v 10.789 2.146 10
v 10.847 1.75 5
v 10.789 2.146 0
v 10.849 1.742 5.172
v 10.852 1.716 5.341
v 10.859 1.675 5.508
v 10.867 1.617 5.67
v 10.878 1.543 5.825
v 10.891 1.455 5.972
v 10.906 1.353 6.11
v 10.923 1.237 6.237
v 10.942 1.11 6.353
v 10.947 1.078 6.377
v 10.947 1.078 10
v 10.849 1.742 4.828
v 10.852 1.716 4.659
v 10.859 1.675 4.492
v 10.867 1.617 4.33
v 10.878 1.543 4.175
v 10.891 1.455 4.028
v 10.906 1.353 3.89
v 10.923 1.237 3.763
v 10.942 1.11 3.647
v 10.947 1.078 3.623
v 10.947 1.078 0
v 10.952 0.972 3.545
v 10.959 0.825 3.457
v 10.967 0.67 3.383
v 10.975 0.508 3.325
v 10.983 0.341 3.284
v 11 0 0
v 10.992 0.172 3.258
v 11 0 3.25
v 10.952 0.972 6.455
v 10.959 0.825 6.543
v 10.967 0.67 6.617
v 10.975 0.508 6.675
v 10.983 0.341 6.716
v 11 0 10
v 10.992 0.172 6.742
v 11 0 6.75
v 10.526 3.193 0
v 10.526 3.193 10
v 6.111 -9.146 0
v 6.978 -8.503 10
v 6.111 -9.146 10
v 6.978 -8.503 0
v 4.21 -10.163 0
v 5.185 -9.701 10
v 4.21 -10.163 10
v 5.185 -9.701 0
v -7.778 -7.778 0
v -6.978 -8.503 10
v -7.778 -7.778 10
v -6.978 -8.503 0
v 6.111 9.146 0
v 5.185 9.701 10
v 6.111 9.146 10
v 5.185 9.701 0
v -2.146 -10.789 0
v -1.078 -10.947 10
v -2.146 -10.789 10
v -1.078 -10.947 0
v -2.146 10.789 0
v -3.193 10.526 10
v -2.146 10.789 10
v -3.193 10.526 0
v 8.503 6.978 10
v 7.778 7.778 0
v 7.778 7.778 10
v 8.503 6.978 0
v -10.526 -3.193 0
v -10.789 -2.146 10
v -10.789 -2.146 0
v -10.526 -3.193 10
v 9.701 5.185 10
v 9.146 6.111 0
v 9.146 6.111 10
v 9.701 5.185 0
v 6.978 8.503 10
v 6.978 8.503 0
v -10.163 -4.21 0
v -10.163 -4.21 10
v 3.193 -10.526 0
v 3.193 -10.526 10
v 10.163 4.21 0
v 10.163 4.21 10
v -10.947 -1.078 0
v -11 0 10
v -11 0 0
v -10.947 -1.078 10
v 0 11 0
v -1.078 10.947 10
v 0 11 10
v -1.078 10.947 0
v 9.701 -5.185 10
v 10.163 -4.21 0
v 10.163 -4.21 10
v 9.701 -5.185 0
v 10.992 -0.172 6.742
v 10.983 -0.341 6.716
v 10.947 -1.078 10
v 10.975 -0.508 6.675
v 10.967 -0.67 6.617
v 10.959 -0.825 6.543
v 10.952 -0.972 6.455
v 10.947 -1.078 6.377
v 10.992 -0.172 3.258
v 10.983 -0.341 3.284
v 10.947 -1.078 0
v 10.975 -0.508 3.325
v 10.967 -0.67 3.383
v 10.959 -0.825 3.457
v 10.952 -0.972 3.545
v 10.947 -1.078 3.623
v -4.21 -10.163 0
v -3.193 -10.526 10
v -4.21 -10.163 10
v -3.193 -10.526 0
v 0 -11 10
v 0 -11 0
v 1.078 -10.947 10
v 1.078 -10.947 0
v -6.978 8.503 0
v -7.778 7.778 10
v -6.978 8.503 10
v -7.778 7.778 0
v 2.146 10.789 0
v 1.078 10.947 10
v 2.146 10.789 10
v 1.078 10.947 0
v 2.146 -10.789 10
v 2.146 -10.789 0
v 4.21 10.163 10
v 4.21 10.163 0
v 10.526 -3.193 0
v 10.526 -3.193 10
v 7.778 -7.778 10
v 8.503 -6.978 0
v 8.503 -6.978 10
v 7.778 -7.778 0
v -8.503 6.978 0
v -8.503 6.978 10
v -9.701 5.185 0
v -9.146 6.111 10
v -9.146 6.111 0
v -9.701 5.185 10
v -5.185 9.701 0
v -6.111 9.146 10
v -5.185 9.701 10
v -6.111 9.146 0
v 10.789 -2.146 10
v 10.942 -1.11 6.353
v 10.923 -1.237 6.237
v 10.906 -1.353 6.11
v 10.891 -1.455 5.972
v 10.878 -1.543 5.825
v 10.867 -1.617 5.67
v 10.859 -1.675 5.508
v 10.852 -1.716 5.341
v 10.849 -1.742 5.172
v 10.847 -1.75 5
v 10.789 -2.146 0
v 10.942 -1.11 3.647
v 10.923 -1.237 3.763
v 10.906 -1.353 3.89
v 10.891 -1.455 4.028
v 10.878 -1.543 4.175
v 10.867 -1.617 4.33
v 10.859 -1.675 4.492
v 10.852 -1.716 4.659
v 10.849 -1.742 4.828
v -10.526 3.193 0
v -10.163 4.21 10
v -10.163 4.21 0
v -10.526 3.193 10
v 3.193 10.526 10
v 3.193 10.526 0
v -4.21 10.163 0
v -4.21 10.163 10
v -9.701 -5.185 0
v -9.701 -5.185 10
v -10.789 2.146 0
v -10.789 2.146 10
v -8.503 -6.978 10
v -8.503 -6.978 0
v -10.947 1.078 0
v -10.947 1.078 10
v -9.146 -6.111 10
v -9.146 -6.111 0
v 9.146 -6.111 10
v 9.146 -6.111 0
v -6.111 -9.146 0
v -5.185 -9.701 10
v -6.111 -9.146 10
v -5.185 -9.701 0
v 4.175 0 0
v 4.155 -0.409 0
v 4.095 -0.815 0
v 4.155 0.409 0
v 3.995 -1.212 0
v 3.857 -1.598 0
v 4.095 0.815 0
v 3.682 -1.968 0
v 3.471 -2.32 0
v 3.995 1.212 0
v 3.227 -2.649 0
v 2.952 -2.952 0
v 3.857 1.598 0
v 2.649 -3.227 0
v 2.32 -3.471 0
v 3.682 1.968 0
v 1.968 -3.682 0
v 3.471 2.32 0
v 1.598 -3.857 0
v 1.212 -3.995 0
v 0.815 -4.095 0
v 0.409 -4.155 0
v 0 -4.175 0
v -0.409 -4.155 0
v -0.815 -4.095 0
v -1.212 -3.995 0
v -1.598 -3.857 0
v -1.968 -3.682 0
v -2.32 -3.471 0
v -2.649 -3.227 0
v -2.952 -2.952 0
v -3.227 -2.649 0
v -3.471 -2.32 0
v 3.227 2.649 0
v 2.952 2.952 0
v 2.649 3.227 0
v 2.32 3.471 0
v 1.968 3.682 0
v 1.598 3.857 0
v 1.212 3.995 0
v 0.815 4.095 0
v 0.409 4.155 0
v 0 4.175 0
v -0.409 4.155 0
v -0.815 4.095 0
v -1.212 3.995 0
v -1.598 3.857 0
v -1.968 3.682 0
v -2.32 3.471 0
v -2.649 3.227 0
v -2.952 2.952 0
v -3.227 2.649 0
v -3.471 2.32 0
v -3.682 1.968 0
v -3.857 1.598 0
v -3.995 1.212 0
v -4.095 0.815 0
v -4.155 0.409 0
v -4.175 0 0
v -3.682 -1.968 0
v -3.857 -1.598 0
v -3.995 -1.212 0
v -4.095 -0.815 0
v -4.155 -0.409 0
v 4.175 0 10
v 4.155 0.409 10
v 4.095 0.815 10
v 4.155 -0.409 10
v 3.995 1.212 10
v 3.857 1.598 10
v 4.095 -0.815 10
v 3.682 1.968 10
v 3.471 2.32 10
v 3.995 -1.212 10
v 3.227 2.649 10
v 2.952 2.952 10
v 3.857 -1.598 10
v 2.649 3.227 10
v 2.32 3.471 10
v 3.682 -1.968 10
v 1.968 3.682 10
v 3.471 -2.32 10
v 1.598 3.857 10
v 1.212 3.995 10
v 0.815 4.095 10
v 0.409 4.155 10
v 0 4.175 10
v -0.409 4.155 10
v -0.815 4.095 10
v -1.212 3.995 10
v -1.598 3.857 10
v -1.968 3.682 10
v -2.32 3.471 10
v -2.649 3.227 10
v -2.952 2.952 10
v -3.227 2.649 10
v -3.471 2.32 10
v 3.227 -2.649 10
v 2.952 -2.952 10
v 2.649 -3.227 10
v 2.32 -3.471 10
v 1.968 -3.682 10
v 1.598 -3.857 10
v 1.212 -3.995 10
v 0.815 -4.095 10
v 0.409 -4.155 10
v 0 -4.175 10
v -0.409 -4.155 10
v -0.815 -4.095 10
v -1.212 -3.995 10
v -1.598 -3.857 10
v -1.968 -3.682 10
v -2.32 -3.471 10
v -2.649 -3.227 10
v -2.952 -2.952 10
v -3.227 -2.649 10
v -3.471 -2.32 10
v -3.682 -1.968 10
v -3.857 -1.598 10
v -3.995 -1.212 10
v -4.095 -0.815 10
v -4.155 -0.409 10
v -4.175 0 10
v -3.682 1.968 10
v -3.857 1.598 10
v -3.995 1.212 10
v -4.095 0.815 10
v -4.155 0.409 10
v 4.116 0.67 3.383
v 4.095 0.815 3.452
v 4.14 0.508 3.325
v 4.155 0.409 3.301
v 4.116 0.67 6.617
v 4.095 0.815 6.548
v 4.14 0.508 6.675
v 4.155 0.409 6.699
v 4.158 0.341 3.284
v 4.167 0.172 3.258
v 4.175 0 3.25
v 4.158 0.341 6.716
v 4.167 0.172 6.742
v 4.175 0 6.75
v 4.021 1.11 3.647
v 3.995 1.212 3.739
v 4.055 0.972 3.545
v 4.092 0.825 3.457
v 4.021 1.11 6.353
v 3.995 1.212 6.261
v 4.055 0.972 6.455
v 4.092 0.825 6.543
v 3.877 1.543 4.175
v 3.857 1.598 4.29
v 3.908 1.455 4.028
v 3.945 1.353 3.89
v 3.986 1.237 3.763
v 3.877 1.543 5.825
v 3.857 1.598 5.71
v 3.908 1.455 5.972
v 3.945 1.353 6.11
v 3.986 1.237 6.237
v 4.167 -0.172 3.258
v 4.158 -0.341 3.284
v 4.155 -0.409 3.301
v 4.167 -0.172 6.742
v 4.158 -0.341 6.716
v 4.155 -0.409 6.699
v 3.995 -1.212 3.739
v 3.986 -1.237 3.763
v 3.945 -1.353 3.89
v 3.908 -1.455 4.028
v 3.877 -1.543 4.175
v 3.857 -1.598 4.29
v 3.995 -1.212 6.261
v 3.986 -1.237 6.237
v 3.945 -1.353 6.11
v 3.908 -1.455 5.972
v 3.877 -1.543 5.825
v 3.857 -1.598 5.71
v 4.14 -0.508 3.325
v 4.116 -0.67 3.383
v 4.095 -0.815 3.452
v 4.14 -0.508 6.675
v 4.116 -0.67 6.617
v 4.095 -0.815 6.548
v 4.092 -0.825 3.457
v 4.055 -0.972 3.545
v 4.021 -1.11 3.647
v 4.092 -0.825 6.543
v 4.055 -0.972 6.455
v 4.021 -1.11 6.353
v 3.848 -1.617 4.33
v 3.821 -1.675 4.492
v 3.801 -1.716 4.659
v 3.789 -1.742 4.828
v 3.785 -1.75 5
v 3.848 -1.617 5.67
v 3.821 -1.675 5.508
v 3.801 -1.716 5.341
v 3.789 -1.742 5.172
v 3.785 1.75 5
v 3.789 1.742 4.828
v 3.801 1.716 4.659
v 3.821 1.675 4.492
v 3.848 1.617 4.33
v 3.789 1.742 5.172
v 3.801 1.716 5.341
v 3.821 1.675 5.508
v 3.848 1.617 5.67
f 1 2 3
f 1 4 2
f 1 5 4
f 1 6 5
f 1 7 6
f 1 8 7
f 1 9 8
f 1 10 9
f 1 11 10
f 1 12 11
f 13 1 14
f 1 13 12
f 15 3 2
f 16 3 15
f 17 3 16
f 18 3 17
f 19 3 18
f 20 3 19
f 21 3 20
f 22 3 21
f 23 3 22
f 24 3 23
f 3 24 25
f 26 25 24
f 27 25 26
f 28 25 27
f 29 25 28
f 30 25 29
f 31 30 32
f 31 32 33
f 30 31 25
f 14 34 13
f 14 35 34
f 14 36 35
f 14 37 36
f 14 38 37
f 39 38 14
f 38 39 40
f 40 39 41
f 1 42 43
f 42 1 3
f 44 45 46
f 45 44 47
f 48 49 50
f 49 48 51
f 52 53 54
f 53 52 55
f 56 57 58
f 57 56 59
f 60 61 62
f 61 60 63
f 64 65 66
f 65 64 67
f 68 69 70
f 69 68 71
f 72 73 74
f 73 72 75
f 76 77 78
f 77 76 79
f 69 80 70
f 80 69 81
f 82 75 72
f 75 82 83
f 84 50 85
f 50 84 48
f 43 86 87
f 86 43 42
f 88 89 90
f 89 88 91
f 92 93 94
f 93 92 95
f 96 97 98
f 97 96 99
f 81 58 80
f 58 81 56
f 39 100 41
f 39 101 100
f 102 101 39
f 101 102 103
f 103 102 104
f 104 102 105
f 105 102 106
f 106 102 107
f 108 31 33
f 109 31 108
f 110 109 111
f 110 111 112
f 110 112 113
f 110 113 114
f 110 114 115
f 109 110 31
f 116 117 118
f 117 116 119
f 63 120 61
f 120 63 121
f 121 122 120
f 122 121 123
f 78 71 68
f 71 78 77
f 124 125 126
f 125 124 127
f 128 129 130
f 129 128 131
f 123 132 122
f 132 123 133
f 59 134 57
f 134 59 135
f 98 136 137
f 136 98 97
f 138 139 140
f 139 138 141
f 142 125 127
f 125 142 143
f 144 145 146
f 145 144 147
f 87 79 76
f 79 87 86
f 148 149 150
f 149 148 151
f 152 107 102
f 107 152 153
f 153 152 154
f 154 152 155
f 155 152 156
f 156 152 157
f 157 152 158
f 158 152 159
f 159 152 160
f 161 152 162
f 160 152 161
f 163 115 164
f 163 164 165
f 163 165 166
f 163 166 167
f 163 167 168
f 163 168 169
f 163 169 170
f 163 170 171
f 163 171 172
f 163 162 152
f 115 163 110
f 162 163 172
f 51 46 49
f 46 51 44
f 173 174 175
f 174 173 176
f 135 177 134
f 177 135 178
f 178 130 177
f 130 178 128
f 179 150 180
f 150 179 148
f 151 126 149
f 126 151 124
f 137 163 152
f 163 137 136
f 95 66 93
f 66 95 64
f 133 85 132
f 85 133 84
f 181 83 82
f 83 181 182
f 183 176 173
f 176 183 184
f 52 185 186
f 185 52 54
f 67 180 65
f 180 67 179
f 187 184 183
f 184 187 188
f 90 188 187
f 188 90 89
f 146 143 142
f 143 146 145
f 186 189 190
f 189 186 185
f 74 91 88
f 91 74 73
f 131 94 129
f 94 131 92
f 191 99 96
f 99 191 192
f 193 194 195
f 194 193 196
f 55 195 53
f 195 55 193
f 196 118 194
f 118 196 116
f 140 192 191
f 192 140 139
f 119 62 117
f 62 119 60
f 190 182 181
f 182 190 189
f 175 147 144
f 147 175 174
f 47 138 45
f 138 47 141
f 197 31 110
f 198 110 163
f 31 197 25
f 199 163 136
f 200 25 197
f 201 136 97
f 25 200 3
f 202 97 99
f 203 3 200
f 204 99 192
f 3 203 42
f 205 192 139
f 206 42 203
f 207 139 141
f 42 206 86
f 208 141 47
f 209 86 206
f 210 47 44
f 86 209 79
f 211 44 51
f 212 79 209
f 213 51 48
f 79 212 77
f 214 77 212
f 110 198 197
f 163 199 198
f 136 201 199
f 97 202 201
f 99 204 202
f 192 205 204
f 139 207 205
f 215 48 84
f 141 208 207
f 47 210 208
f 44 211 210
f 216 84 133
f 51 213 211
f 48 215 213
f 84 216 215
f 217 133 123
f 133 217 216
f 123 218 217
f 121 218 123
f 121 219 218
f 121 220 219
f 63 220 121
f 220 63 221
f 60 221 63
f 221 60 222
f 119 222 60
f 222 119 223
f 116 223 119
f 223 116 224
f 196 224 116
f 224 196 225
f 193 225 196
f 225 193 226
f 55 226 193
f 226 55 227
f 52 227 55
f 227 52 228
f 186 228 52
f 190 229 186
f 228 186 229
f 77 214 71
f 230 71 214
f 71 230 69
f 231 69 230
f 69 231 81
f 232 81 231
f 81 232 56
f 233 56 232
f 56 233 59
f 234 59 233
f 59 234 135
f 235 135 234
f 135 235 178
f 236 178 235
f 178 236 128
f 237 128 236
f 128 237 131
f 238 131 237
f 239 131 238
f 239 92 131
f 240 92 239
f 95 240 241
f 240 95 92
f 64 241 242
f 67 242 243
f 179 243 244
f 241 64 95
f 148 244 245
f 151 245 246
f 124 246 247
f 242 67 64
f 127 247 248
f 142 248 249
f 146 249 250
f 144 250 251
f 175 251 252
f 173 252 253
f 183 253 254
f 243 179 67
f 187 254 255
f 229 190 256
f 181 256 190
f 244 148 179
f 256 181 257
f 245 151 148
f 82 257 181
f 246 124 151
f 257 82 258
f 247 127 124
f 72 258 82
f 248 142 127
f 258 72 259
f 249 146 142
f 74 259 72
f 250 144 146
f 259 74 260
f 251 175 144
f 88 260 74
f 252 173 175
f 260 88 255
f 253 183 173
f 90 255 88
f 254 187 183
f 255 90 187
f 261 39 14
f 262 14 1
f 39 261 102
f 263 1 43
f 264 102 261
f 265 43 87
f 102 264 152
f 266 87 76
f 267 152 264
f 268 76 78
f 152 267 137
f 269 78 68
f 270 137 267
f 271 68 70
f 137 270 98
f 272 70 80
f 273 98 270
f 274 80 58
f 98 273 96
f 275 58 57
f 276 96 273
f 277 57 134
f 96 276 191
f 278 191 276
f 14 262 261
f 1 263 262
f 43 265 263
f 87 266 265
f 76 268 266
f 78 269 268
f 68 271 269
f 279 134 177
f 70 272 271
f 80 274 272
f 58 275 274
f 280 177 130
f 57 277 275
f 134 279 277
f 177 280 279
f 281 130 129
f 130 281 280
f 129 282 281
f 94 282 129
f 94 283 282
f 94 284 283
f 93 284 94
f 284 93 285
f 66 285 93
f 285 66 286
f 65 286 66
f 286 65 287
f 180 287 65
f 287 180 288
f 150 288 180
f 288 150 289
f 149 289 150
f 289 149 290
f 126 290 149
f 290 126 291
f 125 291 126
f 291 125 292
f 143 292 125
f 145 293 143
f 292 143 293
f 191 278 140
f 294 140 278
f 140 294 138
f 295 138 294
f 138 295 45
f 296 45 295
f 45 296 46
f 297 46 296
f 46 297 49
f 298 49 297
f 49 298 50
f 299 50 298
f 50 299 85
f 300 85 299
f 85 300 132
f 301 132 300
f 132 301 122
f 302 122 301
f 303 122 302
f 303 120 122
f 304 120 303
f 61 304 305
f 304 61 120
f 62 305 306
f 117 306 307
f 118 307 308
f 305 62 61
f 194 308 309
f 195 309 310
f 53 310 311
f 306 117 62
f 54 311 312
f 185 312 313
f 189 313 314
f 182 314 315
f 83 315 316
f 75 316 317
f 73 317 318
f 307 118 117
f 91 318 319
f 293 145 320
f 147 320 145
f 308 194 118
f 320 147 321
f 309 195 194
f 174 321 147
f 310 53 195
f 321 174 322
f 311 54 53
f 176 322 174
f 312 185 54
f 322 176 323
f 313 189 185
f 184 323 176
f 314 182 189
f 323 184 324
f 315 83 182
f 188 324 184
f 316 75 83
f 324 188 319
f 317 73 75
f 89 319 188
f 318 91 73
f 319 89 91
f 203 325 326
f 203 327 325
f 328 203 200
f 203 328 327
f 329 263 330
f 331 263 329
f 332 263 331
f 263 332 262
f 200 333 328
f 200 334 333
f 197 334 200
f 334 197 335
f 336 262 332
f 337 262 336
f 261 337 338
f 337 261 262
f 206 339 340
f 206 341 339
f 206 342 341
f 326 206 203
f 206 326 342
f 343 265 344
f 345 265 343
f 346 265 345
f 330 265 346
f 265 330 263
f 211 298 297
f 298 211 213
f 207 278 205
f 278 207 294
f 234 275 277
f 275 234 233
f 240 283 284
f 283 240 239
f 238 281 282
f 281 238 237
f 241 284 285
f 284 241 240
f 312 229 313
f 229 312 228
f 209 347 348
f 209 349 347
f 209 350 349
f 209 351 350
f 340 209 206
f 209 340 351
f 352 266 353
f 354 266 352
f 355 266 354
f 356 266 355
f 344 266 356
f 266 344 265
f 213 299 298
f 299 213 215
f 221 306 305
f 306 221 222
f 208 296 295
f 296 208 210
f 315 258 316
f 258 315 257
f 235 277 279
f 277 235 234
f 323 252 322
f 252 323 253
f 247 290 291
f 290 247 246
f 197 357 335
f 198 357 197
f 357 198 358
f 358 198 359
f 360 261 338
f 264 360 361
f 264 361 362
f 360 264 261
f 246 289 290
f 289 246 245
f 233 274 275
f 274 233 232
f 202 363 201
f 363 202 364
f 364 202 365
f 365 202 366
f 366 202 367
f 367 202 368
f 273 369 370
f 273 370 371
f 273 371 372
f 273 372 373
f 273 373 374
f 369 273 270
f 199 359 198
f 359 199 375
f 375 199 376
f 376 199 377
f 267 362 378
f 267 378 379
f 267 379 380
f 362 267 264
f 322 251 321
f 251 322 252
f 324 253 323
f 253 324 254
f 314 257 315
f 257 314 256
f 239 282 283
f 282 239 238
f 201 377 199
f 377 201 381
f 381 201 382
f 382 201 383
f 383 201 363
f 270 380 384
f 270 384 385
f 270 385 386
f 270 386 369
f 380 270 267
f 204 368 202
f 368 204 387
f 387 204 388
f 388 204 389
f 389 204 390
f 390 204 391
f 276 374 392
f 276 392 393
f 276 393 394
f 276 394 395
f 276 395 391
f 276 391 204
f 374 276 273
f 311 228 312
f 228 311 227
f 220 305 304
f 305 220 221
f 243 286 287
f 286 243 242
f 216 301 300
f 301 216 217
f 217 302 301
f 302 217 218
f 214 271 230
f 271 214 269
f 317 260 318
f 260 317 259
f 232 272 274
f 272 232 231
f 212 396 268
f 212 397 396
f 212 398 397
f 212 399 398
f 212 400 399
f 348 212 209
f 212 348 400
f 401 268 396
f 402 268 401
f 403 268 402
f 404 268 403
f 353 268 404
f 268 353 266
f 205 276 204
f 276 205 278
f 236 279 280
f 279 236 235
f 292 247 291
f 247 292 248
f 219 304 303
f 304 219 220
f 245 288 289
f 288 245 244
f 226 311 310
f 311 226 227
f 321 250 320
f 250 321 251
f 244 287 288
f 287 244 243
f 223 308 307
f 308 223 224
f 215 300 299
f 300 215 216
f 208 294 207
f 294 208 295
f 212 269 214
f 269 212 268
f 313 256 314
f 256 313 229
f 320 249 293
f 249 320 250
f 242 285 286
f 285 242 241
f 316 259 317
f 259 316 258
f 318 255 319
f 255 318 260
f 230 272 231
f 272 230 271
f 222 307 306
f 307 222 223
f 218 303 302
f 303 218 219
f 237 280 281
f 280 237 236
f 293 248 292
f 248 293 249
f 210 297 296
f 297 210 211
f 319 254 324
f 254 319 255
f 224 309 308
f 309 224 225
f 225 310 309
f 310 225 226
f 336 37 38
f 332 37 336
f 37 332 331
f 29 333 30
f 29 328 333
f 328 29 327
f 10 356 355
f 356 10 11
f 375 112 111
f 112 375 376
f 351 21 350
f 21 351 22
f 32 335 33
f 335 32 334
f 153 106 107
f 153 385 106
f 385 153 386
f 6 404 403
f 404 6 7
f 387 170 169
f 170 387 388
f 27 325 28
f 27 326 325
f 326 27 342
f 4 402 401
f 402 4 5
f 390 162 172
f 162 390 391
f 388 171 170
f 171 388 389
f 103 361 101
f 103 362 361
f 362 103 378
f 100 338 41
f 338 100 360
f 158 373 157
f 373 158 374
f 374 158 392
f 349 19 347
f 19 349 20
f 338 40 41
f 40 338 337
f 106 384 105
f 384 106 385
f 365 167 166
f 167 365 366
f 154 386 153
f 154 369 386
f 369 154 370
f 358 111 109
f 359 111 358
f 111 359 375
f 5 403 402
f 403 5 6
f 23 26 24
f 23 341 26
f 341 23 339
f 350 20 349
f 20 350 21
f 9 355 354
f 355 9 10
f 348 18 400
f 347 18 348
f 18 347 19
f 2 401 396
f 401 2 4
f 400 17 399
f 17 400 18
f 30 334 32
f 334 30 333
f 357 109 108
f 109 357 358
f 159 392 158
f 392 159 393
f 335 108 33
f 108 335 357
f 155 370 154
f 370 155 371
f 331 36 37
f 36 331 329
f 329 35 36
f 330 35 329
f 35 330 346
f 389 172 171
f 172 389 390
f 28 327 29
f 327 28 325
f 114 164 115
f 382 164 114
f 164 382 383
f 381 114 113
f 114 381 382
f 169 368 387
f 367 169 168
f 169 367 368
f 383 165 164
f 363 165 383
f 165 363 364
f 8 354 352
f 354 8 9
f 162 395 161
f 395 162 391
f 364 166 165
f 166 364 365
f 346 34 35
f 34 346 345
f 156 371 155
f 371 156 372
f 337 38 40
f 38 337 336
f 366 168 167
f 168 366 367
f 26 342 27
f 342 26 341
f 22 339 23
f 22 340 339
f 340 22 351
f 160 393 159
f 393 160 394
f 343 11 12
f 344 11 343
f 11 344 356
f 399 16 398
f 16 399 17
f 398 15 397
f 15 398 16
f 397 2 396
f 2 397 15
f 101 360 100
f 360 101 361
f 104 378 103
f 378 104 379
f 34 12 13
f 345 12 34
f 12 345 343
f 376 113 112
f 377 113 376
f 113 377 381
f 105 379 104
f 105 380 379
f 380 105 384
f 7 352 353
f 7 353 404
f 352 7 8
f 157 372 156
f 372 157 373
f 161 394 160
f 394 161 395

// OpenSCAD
// file: parameters.scad
// =============================================================================
// Gen-U Vernier + flux-claw AFPM — WOUND-AWARE (HARD GATE)
// 16-pole rotor (16×Ø20) + 48×Ø5 claw/edge flux assists; 12-coil vernier stator
// Optional mild-steel washer registers in BOM for claw return paths.
// =============================================================================

wire_awg            = 26;
wire_od             = 0.45;
turns               = 140;      // vernier: more turns for low-RPM band
fill                = 0.70;
layers_per_face     = 2;
wind_build_axial    = layers_per_face * wire_od * fill;   // 0.63
wind_build_radial   = 3 * wire_od * fill;                 // 0.945

coil_id_r           = 22.0;
coil_od_r           = 58.0;
span_deg            = 24.0;     // 12 stations; vernier vs 16 poles
former_web          = 2.6;
flange_t            = 0.9;
wall                = 1.2;
slot_w              = 2.4;
mount_hole          = 3.5;
tab_len             = 7.0;

former_bare_h       = former_web + 2 * flange_t;            // 4.4
coil_envelope_h     = former_bare_h + 2 * wind_build_axial; // 5.66

run_clear           = 0.85;     // prefer ≥0.85 for vernier stack
gap_spacer_h        = run_clear + wind_build_axial;         // 1.48
// Single-rotor AFPM: magnet ↔ wound = run_clear (spacer math)
// (No dual-rotor m2m; stator faces one magnet plane)

coil_stations       = 12;
bay_r_in            = coil_id_r - 2.0 - wind_build_radial;
bay_r_out           = coil_od_r + 2.0 + wind_build_radial;
bay_span            = span_deg + 4.0;
bay_offset          = 2.0;
bay_depth           = former_bare_h + wind_build_axial;
stator_back_web     = 2.5;
stator_thick        = bay_depth + stator_back_web;
stator_od           = 156.0;
shaft_clear_stator  = 36.0;
coil_mount_r        = 28.0;

// Rotor: ALL 16×Ø20 as poles + 48×Ø5 claw/edge (3 rings × 16)
large_pocket_d      = 20.3;
small_pocket_d      = 5.3;
pocket_h            = 5.2;
large_n             = 16;       // vernier poles
R_large             = 50.0;
R_claw_inner        = 36.0;     // flux-claw / edge assist rings
R_claw_mid          = 50.0;
R_claw_outer        = 64.0;
carrier_od          = 152.0;
carrier_thick       = 8.0;
hub_h               = 10.0;
hub_od              = 30.0;
// Steel return register pocket (optional washer Ø25×1)
steel_washer_d      = 25.4;
steel_washer_pocket = 1.2;
steel_register_r    = 50.0;

shaft_bore          = 8.35;
bearing_d           = 21.85;
bearing_h           = 7.2;
m3_clear            = 3.5;
bolt_r_inner        = 36.0;
bolt_n_inner        = 6;
flange_bolt_r       = 72.0;
flange_bolt_n       = 6;
brace_r             = 68.0;
brace_d             = 4.3;
brace_n             = 4;

spacer_pad_od       = 14.0;
spacer_pad_id       = m3_clear;
endbell_od          = 156.0;
endbell_thick       = 8.0;
endbell_shaft_clear = 10.0;

// Claw flux pad (printed) — seats optional steel washer behind rotor
claw_pad_od         = 30.0;
claw_pad_h          = 3.0;

$fn = 64;
// main file
include <parameters.scad>;
$fn = 64;
od = 22; id = shaft_bore; h = 10; set_d = 3.5;
difference() {
    cylinder(d=od, h=h);
    translate([0, 0, -0.1]) cylinder(d=id, h=h + 0.2);
    translate([0, 0, h/2]) rotate([0, 90, 0]) cylinder(d=set_d, h=od);
}
